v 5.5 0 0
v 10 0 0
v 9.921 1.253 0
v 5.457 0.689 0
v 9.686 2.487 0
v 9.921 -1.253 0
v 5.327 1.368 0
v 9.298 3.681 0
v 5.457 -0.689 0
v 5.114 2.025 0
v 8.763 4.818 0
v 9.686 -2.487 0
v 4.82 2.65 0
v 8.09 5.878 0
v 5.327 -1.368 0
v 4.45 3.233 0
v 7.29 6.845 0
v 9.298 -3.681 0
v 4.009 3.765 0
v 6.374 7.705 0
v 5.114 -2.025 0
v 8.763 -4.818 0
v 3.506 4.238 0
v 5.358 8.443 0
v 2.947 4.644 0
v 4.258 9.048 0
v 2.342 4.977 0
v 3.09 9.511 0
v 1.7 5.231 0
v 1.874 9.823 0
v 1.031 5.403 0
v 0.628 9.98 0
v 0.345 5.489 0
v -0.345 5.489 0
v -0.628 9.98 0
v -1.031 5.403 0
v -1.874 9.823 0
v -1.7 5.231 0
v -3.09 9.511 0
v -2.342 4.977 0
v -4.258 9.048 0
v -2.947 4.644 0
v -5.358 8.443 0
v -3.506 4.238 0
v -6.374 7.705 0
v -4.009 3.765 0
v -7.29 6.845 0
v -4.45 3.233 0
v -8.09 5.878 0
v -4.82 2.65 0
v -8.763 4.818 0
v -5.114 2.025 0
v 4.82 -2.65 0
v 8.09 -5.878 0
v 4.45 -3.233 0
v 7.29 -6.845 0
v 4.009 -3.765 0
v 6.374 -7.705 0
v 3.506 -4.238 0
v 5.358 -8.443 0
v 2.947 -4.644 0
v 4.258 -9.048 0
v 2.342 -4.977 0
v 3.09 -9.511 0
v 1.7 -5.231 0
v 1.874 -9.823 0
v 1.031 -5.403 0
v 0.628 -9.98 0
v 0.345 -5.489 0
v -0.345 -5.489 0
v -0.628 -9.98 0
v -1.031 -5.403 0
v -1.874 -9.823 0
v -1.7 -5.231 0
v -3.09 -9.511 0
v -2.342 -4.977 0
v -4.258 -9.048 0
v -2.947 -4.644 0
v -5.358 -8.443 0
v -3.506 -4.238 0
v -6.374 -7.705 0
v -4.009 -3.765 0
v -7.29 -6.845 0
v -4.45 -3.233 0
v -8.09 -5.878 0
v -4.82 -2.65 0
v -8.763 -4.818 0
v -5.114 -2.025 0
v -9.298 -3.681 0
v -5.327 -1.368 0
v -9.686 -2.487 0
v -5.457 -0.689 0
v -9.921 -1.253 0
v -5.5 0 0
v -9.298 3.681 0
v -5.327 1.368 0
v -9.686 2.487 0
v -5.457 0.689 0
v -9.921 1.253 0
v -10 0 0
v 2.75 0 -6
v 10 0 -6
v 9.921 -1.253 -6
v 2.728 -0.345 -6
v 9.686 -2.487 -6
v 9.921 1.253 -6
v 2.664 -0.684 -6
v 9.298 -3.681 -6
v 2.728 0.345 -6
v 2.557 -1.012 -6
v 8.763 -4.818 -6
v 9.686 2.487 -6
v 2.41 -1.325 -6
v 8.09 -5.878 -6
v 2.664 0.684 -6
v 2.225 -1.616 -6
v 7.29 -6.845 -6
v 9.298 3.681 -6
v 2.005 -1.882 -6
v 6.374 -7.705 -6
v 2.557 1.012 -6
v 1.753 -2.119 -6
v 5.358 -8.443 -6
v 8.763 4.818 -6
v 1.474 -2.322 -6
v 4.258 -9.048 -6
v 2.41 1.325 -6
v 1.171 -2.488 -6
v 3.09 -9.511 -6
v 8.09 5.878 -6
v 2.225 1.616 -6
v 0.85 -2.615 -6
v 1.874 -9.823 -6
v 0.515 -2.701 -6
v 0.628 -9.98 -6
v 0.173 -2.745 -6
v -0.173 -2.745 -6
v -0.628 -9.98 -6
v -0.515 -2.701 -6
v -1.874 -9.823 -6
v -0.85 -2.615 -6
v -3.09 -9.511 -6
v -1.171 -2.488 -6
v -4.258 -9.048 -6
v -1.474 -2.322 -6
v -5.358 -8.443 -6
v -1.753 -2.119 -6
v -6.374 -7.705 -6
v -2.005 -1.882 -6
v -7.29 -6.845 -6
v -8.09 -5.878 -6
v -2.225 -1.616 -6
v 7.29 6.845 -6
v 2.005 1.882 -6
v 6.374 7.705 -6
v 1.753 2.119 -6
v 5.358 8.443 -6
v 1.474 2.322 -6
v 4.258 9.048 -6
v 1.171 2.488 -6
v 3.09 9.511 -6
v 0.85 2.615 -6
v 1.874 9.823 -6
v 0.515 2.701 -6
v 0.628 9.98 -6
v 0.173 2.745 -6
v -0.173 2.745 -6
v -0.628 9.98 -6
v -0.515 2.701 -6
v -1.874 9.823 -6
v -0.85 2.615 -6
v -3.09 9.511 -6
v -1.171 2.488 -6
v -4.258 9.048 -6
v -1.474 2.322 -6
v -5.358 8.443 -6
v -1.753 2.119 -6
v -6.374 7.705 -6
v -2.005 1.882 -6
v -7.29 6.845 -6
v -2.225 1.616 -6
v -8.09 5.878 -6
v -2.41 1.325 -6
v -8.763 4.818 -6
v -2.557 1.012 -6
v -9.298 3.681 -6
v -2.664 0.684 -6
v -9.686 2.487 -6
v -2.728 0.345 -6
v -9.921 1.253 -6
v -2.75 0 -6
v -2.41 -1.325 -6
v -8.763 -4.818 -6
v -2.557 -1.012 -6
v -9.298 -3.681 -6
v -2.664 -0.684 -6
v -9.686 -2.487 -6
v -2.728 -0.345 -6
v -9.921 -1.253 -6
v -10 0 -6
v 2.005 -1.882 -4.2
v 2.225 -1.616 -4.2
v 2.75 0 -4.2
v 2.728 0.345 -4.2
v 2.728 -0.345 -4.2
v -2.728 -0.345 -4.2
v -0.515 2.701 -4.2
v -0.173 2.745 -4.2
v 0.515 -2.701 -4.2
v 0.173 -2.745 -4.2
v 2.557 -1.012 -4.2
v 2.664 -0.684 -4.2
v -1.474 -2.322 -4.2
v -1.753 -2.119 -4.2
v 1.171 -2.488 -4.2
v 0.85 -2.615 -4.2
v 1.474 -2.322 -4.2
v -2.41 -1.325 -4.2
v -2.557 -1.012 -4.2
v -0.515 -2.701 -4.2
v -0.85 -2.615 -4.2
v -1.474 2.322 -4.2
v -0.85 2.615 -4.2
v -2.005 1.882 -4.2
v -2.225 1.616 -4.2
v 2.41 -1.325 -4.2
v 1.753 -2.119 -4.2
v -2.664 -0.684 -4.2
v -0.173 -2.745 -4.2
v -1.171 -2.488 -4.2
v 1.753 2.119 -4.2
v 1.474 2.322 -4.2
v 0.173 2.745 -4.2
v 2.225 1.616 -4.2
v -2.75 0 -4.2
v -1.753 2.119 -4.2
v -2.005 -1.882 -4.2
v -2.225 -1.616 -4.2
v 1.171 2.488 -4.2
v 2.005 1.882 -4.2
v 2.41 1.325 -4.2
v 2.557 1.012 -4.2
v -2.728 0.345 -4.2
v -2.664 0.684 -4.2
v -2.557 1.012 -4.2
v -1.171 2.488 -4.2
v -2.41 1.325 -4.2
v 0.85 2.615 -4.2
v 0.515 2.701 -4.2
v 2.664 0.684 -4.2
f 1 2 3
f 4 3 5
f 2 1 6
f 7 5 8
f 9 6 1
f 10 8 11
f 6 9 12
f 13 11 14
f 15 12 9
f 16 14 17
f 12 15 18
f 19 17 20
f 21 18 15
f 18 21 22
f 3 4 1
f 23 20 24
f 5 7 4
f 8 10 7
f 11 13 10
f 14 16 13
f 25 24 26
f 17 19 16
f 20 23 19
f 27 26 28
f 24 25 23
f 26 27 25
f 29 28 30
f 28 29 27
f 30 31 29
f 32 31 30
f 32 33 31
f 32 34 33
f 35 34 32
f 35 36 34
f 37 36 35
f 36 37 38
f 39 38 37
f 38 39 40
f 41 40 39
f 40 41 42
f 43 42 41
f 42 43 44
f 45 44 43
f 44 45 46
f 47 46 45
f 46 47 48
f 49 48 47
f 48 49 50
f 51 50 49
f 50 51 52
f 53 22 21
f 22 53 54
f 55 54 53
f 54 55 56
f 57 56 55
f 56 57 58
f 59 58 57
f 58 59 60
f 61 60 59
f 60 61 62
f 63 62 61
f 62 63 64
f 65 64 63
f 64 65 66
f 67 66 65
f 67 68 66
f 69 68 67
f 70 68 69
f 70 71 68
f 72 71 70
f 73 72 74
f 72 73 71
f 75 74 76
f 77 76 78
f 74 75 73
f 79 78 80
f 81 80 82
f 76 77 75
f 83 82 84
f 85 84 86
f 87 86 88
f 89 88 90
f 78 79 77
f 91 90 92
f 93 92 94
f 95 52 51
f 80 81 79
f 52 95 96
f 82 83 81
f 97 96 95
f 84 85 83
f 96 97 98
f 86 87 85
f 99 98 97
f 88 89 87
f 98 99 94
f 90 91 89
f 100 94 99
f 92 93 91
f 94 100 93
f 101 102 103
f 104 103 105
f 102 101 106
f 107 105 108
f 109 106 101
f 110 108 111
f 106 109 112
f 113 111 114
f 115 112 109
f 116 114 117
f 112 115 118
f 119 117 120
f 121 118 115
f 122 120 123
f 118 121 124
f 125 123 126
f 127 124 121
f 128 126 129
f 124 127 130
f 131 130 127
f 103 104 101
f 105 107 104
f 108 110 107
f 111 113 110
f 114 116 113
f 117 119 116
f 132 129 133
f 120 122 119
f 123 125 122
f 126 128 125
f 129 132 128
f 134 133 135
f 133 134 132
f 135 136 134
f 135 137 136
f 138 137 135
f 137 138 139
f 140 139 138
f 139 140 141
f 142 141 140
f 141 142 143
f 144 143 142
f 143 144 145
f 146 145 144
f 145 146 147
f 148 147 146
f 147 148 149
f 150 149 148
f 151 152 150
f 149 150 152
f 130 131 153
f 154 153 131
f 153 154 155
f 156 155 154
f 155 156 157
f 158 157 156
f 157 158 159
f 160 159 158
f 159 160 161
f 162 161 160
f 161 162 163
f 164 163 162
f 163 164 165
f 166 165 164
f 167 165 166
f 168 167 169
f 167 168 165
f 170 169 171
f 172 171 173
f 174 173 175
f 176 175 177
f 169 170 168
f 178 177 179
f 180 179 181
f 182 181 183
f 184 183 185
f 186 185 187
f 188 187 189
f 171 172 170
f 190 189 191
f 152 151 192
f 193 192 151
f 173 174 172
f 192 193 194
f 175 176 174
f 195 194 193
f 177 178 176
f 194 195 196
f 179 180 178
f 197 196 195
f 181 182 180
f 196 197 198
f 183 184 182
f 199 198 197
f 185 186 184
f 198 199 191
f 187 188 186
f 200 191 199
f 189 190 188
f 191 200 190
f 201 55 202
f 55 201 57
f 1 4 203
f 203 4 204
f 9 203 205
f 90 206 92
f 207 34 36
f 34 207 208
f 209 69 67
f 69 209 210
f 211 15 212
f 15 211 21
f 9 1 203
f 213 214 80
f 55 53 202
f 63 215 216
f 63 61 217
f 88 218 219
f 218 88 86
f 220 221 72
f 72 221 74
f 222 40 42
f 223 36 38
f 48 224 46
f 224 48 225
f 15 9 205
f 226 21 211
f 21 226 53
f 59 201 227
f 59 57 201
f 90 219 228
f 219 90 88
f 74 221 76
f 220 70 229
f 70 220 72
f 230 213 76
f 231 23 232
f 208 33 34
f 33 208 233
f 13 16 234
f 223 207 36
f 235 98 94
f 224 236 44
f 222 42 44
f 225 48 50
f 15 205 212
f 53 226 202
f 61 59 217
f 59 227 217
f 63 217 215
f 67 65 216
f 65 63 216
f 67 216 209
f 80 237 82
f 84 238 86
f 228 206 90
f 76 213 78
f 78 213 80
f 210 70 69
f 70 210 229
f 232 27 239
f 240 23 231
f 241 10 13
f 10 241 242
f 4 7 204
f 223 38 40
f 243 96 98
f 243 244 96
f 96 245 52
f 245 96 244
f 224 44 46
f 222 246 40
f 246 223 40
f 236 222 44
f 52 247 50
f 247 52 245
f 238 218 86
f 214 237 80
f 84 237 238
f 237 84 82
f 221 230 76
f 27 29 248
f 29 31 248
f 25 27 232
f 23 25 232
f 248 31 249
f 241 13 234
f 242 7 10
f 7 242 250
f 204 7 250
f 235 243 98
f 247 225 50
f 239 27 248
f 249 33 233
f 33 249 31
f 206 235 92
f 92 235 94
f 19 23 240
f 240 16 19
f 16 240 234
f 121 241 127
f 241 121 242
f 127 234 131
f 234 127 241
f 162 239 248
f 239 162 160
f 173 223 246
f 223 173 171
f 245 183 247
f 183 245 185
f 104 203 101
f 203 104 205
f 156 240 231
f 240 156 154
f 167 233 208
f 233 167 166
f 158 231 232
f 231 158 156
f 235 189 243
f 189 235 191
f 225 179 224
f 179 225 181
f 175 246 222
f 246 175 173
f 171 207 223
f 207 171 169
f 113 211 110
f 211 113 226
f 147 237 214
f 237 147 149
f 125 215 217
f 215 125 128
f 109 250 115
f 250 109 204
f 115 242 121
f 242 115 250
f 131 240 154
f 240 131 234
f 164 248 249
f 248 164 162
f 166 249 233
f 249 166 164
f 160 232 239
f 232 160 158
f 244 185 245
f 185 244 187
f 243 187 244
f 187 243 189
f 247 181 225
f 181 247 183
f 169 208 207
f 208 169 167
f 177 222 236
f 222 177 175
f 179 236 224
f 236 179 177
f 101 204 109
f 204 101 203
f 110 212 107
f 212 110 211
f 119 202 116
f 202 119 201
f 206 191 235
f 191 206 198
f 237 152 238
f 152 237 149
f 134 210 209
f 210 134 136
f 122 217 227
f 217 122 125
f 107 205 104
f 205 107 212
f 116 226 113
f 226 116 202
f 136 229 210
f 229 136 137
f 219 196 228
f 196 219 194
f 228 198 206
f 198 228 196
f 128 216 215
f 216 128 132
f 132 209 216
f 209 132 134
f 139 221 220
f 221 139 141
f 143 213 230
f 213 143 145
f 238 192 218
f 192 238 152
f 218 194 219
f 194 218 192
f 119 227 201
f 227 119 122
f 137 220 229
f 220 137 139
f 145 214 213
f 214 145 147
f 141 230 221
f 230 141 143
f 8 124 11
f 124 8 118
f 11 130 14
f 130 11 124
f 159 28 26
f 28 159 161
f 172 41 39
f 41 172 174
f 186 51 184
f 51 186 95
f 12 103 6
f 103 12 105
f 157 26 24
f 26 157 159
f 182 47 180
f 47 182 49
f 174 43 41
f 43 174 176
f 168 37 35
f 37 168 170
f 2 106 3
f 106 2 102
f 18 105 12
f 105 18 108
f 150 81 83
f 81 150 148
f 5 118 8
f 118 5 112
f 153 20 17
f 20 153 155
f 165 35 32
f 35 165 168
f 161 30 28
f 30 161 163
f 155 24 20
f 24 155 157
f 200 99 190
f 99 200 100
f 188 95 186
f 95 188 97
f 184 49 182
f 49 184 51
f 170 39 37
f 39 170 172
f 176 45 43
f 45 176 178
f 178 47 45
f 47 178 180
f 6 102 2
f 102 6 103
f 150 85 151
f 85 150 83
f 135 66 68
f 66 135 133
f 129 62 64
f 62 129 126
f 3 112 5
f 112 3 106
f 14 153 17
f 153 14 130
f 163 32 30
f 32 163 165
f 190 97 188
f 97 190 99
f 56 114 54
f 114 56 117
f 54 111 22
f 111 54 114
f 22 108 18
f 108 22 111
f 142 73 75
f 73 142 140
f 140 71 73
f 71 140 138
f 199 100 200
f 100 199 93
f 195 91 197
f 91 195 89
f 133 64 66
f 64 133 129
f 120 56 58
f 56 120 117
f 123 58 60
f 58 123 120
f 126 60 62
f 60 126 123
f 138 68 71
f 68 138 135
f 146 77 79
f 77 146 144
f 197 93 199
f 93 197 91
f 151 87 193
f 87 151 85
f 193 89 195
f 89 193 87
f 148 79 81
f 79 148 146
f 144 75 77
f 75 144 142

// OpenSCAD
$fn = 50;


difference() {
	union() {
		translate(v = [0, 0, -6.0000000000]) {
			cylinder(h = 6, r = 10.0000000000);
		}
		cylinder(h = 0, r = 13.0000000000);
	}
	union() {
		translate(v = [0, 0, 0]) {
			rotate(a = [0, 0, 0]) {
				difference() {
					union() {
						#translate(v = [0, 0, -6.0000000000]) {
							cylinder(h = 6, r = 2.2500000000);
						}
						#translate(v = [0, 0, -4.2000000000]) {
							cylinder(h = 4.2000000000, r = 10.0000000000, r1 = 2.7500000000, r2 = 5.5000000000);
						}
						#translate(v = [0, 0, -6.0000000000]) {
							cylinder(h = 6, r = 2.7500000000);
						}
						#translate(v = [0, 0, -6.0000000000]) {
							cylinder(h = 6, r = 2.2500000000);
						}
					}
					union();
				}
			}
		}
	}
}
